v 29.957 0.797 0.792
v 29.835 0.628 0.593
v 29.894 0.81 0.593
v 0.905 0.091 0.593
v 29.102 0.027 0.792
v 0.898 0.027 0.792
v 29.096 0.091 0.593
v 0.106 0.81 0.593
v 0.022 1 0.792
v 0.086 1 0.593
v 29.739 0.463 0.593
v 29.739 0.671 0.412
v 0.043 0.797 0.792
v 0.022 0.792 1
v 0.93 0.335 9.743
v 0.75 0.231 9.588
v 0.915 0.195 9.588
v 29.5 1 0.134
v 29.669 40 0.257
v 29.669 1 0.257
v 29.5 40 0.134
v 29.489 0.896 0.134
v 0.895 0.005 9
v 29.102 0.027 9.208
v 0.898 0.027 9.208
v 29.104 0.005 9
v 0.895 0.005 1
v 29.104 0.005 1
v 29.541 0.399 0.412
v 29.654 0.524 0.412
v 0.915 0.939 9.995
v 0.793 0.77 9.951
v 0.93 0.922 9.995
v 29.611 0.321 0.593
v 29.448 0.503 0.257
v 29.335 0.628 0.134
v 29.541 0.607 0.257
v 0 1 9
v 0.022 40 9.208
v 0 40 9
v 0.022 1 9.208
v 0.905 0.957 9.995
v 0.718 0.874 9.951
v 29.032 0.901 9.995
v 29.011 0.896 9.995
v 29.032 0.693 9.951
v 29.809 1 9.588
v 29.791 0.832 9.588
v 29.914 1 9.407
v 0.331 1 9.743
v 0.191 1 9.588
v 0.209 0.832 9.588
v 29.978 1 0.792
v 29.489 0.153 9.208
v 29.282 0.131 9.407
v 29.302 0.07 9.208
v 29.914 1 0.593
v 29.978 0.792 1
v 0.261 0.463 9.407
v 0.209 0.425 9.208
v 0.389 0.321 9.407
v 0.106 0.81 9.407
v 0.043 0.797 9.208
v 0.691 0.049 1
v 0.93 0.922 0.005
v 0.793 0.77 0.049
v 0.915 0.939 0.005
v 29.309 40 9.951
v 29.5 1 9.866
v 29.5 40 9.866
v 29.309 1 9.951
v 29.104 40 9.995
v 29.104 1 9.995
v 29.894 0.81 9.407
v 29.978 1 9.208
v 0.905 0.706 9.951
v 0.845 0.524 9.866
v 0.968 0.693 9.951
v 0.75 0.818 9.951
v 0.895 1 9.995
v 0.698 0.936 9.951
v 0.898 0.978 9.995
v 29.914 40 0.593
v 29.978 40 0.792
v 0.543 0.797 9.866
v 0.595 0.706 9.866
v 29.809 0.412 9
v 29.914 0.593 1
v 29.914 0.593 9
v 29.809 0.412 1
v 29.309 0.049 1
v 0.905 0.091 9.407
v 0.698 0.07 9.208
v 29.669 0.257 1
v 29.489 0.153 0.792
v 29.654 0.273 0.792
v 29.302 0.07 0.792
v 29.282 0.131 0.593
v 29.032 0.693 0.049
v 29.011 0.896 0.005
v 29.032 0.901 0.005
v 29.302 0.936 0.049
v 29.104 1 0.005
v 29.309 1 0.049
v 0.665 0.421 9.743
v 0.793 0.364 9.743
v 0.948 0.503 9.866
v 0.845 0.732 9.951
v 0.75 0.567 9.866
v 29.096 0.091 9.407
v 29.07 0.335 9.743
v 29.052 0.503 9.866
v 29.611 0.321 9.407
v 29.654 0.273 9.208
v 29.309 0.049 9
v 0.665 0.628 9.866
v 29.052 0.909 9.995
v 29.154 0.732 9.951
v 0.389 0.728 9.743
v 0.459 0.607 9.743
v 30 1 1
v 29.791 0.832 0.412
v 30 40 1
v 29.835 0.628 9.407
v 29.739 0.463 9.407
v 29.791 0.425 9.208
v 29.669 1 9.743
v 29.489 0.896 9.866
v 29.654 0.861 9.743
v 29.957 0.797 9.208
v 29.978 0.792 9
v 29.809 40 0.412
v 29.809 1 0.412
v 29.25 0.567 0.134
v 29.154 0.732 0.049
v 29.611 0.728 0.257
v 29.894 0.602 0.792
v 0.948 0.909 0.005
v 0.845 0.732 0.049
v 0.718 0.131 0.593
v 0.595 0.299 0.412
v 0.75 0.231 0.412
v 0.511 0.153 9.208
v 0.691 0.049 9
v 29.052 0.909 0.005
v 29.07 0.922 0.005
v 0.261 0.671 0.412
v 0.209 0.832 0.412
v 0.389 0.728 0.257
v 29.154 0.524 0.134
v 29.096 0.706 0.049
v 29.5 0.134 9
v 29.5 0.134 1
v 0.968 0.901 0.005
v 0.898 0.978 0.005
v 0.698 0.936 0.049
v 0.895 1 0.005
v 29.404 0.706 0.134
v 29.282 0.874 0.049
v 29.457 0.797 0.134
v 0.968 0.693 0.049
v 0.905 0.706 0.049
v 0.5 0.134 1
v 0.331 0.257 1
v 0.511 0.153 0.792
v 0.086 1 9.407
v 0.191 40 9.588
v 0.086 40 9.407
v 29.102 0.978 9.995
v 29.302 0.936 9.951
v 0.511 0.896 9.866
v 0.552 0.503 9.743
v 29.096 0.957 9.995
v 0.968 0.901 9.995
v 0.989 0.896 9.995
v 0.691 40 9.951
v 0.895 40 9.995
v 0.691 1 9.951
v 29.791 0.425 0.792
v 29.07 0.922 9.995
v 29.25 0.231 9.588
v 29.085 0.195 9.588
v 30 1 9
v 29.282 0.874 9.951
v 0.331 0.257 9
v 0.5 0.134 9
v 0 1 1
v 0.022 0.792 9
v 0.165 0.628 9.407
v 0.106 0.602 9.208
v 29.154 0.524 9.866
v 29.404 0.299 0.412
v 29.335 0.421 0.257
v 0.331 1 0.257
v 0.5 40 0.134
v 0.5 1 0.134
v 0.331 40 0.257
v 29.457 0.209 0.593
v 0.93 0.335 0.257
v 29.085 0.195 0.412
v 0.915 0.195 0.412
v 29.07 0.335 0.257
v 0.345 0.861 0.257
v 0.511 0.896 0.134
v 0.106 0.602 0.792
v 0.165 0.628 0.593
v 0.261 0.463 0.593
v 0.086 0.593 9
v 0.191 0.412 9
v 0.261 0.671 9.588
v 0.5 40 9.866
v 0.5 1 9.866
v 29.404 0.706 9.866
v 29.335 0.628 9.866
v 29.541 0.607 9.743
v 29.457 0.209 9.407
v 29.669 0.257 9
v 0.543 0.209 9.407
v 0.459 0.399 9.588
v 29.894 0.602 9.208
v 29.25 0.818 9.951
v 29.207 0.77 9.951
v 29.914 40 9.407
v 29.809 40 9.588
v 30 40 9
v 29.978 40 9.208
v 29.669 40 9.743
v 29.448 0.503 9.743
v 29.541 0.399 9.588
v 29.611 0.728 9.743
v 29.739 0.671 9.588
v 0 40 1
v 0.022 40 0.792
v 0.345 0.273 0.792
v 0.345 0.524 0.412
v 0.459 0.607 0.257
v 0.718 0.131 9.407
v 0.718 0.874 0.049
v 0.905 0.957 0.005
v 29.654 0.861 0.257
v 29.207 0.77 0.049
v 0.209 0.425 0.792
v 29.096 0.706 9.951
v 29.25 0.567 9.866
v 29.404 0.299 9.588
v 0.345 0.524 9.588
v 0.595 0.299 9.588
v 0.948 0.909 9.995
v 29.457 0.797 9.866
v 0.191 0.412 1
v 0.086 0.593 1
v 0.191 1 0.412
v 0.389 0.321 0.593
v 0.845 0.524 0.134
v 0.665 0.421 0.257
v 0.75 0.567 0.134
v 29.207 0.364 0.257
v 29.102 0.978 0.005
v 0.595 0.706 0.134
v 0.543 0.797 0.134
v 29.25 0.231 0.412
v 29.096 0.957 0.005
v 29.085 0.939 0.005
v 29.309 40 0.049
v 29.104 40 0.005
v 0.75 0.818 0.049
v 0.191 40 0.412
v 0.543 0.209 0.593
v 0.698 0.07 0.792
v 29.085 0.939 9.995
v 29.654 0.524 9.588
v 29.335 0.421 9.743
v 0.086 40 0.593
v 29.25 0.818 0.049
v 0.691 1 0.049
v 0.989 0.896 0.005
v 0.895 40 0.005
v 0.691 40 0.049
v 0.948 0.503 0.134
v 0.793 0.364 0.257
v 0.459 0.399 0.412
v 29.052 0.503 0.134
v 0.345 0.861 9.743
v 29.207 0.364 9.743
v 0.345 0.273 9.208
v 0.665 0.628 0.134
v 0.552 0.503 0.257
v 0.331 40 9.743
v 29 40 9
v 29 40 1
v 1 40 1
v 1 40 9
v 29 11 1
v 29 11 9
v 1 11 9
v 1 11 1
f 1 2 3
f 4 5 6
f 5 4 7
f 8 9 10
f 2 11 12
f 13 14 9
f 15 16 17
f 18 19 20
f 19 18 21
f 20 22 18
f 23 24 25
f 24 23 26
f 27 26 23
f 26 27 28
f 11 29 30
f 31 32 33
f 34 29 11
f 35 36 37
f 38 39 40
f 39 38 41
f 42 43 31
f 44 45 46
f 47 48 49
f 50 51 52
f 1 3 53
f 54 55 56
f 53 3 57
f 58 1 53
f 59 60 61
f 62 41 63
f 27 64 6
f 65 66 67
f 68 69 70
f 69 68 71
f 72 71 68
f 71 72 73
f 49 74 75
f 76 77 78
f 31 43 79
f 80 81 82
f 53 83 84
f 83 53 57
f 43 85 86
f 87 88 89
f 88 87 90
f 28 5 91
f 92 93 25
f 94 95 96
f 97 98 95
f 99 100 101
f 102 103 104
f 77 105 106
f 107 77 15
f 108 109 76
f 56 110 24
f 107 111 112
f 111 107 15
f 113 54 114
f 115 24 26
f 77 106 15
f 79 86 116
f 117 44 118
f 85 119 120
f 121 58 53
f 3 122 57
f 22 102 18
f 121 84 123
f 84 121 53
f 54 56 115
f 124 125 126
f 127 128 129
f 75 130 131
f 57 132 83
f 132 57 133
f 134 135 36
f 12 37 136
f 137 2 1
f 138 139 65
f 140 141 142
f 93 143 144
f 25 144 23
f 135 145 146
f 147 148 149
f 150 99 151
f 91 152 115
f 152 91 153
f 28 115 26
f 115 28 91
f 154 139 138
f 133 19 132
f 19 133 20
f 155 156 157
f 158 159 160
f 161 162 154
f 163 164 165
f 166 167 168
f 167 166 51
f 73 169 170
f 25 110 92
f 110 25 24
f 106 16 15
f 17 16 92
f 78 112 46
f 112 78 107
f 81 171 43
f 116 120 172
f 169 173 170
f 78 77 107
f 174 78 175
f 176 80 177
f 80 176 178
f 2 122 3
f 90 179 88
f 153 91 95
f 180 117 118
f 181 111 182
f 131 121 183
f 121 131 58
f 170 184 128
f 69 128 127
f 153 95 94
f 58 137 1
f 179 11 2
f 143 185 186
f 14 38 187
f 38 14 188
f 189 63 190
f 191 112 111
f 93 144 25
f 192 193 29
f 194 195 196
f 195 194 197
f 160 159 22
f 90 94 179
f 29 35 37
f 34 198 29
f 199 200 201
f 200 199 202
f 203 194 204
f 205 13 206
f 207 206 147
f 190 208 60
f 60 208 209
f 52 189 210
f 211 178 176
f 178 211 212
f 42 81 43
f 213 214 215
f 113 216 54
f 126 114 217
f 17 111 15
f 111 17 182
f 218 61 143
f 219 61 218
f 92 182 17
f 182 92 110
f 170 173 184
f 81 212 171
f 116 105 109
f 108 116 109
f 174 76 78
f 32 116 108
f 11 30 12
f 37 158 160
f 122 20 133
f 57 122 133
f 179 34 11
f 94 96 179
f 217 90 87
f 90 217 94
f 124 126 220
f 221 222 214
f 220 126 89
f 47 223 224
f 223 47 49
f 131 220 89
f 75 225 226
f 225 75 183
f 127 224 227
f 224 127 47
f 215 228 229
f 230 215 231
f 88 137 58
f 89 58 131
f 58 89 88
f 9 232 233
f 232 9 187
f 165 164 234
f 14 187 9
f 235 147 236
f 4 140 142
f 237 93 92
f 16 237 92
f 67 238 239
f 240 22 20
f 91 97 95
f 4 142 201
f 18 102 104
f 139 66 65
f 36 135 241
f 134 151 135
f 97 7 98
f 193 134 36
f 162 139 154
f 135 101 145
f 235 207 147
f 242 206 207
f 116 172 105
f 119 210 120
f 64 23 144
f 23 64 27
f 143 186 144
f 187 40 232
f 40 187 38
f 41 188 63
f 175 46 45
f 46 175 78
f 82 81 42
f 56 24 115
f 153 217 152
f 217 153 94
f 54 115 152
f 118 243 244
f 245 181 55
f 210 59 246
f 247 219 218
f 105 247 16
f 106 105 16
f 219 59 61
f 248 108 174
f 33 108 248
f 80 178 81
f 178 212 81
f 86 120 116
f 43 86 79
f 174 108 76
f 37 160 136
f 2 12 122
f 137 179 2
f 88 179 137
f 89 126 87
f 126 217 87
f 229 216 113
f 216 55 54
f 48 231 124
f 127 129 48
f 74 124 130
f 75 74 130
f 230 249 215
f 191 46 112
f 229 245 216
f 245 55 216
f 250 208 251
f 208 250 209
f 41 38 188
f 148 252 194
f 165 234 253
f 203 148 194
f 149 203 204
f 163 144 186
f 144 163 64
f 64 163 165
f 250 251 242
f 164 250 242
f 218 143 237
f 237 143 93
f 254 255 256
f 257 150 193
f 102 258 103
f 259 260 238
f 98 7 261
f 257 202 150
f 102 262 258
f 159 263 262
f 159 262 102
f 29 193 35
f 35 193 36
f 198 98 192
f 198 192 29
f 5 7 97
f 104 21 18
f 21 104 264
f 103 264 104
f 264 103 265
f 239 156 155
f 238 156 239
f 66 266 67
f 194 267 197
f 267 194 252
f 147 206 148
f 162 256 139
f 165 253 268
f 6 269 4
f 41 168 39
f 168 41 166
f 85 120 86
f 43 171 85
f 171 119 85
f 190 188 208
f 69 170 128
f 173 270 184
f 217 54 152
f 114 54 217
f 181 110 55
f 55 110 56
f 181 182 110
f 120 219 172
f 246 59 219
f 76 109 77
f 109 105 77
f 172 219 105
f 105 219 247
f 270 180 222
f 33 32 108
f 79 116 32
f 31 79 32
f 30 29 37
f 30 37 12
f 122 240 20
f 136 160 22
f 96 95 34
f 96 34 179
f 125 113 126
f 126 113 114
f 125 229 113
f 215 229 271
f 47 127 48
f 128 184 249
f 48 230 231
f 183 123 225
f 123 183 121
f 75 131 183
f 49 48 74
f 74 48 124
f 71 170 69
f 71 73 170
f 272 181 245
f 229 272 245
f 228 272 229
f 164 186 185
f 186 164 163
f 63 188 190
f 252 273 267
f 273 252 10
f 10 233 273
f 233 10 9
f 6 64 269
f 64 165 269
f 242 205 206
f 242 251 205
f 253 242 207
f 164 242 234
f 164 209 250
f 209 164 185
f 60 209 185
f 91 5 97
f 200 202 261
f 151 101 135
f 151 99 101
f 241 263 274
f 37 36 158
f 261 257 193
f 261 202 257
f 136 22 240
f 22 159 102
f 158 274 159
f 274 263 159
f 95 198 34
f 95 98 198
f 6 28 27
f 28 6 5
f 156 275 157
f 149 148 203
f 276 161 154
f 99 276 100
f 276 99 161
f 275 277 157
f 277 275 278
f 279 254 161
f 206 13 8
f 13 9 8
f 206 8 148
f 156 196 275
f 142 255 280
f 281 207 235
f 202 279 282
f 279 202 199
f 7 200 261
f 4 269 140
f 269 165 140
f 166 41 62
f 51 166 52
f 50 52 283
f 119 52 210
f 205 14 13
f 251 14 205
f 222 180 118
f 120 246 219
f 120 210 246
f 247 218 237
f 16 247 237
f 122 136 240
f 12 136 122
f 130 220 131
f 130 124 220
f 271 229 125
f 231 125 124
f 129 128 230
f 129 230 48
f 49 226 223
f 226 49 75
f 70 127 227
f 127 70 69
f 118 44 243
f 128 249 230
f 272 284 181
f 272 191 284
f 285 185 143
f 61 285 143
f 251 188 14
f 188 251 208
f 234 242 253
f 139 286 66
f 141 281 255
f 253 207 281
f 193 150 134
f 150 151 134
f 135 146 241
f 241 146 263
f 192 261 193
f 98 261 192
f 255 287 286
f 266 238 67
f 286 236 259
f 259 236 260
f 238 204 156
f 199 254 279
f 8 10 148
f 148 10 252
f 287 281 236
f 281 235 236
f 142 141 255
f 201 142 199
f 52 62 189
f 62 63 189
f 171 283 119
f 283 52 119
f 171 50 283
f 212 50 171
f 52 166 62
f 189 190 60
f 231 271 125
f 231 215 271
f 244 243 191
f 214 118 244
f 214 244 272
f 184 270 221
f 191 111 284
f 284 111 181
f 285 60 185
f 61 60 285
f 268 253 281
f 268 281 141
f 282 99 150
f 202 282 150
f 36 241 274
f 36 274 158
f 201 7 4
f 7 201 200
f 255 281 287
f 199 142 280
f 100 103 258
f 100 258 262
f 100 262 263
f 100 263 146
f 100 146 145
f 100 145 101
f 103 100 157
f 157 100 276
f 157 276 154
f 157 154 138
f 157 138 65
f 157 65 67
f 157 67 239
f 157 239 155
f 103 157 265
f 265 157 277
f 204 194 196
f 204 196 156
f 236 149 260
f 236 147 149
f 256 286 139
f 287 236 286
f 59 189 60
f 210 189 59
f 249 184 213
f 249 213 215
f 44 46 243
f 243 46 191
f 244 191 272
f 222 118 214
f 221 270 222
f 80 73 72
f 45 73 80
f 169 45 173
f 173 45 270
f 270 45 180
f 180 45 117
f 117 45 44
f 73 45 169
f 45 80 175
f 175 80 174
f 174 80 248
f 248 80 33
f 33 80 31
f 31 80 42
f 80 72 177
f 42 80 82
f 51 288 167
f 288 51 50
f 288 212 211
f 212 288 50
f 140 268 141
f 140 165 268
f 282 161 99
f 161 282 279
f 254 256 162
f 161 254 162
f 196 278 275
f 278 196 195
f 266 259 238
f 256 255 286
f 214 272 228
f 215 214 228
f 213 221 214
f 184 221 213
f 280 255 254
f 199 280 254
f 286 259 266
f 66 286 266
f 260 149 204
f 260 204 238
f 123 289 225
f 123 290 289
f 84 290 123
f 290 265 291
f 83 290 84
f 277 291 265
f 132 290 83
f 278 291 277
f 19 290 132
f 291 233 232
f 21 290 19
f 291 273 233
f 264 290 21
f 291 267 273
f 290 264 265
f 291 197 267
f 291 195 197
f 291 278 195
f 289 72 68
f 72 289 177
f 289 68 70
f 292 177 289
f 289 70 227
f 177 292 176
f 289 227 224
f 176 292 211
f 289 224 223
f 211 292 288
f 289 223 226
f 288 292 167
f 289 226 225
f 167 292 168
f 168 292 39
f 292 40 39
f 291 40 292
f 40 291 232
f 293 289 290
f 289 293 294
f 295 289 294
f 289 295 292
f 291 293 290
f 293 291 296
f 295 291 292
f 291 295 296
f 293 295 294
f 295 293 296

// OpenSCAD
// file: module.scad
cube_height = 10;
cube_width = 10;
cube_depth = 10;

$fs = 0.1;

module rounded_cube (size, d) {
    h = 0.0001;
    minkowski () {
        cube([size[0] - d, size[1] - d, size[2] - d], center = false);
        sphere(d = d);
    }
}
// main file
use <module.scad>

height = 10;
width = 30;
length = 40;
cube_round = 2;
margin_cut = 3;
margin_thin = 3;


module body(){
    difference() {
        rounded_cube([width,length + margin_cut,height], cube_round);
        translate([-margin_cut, length - cube_round / 2, -margin_cut])
        cube([width + margin_cut  * 2,length + margin_cut * 2,height + margin_cut * 2]);
        translate([0, 10, 0])
        cube([width - cube_round, length + 1, height - cube_round]);
    }
//    translate([0, length, 0])
//    cube([10 , 10, 10]);
}

translate([cube_round / 2, cube_round / 2, cube_round / 2])
body();
